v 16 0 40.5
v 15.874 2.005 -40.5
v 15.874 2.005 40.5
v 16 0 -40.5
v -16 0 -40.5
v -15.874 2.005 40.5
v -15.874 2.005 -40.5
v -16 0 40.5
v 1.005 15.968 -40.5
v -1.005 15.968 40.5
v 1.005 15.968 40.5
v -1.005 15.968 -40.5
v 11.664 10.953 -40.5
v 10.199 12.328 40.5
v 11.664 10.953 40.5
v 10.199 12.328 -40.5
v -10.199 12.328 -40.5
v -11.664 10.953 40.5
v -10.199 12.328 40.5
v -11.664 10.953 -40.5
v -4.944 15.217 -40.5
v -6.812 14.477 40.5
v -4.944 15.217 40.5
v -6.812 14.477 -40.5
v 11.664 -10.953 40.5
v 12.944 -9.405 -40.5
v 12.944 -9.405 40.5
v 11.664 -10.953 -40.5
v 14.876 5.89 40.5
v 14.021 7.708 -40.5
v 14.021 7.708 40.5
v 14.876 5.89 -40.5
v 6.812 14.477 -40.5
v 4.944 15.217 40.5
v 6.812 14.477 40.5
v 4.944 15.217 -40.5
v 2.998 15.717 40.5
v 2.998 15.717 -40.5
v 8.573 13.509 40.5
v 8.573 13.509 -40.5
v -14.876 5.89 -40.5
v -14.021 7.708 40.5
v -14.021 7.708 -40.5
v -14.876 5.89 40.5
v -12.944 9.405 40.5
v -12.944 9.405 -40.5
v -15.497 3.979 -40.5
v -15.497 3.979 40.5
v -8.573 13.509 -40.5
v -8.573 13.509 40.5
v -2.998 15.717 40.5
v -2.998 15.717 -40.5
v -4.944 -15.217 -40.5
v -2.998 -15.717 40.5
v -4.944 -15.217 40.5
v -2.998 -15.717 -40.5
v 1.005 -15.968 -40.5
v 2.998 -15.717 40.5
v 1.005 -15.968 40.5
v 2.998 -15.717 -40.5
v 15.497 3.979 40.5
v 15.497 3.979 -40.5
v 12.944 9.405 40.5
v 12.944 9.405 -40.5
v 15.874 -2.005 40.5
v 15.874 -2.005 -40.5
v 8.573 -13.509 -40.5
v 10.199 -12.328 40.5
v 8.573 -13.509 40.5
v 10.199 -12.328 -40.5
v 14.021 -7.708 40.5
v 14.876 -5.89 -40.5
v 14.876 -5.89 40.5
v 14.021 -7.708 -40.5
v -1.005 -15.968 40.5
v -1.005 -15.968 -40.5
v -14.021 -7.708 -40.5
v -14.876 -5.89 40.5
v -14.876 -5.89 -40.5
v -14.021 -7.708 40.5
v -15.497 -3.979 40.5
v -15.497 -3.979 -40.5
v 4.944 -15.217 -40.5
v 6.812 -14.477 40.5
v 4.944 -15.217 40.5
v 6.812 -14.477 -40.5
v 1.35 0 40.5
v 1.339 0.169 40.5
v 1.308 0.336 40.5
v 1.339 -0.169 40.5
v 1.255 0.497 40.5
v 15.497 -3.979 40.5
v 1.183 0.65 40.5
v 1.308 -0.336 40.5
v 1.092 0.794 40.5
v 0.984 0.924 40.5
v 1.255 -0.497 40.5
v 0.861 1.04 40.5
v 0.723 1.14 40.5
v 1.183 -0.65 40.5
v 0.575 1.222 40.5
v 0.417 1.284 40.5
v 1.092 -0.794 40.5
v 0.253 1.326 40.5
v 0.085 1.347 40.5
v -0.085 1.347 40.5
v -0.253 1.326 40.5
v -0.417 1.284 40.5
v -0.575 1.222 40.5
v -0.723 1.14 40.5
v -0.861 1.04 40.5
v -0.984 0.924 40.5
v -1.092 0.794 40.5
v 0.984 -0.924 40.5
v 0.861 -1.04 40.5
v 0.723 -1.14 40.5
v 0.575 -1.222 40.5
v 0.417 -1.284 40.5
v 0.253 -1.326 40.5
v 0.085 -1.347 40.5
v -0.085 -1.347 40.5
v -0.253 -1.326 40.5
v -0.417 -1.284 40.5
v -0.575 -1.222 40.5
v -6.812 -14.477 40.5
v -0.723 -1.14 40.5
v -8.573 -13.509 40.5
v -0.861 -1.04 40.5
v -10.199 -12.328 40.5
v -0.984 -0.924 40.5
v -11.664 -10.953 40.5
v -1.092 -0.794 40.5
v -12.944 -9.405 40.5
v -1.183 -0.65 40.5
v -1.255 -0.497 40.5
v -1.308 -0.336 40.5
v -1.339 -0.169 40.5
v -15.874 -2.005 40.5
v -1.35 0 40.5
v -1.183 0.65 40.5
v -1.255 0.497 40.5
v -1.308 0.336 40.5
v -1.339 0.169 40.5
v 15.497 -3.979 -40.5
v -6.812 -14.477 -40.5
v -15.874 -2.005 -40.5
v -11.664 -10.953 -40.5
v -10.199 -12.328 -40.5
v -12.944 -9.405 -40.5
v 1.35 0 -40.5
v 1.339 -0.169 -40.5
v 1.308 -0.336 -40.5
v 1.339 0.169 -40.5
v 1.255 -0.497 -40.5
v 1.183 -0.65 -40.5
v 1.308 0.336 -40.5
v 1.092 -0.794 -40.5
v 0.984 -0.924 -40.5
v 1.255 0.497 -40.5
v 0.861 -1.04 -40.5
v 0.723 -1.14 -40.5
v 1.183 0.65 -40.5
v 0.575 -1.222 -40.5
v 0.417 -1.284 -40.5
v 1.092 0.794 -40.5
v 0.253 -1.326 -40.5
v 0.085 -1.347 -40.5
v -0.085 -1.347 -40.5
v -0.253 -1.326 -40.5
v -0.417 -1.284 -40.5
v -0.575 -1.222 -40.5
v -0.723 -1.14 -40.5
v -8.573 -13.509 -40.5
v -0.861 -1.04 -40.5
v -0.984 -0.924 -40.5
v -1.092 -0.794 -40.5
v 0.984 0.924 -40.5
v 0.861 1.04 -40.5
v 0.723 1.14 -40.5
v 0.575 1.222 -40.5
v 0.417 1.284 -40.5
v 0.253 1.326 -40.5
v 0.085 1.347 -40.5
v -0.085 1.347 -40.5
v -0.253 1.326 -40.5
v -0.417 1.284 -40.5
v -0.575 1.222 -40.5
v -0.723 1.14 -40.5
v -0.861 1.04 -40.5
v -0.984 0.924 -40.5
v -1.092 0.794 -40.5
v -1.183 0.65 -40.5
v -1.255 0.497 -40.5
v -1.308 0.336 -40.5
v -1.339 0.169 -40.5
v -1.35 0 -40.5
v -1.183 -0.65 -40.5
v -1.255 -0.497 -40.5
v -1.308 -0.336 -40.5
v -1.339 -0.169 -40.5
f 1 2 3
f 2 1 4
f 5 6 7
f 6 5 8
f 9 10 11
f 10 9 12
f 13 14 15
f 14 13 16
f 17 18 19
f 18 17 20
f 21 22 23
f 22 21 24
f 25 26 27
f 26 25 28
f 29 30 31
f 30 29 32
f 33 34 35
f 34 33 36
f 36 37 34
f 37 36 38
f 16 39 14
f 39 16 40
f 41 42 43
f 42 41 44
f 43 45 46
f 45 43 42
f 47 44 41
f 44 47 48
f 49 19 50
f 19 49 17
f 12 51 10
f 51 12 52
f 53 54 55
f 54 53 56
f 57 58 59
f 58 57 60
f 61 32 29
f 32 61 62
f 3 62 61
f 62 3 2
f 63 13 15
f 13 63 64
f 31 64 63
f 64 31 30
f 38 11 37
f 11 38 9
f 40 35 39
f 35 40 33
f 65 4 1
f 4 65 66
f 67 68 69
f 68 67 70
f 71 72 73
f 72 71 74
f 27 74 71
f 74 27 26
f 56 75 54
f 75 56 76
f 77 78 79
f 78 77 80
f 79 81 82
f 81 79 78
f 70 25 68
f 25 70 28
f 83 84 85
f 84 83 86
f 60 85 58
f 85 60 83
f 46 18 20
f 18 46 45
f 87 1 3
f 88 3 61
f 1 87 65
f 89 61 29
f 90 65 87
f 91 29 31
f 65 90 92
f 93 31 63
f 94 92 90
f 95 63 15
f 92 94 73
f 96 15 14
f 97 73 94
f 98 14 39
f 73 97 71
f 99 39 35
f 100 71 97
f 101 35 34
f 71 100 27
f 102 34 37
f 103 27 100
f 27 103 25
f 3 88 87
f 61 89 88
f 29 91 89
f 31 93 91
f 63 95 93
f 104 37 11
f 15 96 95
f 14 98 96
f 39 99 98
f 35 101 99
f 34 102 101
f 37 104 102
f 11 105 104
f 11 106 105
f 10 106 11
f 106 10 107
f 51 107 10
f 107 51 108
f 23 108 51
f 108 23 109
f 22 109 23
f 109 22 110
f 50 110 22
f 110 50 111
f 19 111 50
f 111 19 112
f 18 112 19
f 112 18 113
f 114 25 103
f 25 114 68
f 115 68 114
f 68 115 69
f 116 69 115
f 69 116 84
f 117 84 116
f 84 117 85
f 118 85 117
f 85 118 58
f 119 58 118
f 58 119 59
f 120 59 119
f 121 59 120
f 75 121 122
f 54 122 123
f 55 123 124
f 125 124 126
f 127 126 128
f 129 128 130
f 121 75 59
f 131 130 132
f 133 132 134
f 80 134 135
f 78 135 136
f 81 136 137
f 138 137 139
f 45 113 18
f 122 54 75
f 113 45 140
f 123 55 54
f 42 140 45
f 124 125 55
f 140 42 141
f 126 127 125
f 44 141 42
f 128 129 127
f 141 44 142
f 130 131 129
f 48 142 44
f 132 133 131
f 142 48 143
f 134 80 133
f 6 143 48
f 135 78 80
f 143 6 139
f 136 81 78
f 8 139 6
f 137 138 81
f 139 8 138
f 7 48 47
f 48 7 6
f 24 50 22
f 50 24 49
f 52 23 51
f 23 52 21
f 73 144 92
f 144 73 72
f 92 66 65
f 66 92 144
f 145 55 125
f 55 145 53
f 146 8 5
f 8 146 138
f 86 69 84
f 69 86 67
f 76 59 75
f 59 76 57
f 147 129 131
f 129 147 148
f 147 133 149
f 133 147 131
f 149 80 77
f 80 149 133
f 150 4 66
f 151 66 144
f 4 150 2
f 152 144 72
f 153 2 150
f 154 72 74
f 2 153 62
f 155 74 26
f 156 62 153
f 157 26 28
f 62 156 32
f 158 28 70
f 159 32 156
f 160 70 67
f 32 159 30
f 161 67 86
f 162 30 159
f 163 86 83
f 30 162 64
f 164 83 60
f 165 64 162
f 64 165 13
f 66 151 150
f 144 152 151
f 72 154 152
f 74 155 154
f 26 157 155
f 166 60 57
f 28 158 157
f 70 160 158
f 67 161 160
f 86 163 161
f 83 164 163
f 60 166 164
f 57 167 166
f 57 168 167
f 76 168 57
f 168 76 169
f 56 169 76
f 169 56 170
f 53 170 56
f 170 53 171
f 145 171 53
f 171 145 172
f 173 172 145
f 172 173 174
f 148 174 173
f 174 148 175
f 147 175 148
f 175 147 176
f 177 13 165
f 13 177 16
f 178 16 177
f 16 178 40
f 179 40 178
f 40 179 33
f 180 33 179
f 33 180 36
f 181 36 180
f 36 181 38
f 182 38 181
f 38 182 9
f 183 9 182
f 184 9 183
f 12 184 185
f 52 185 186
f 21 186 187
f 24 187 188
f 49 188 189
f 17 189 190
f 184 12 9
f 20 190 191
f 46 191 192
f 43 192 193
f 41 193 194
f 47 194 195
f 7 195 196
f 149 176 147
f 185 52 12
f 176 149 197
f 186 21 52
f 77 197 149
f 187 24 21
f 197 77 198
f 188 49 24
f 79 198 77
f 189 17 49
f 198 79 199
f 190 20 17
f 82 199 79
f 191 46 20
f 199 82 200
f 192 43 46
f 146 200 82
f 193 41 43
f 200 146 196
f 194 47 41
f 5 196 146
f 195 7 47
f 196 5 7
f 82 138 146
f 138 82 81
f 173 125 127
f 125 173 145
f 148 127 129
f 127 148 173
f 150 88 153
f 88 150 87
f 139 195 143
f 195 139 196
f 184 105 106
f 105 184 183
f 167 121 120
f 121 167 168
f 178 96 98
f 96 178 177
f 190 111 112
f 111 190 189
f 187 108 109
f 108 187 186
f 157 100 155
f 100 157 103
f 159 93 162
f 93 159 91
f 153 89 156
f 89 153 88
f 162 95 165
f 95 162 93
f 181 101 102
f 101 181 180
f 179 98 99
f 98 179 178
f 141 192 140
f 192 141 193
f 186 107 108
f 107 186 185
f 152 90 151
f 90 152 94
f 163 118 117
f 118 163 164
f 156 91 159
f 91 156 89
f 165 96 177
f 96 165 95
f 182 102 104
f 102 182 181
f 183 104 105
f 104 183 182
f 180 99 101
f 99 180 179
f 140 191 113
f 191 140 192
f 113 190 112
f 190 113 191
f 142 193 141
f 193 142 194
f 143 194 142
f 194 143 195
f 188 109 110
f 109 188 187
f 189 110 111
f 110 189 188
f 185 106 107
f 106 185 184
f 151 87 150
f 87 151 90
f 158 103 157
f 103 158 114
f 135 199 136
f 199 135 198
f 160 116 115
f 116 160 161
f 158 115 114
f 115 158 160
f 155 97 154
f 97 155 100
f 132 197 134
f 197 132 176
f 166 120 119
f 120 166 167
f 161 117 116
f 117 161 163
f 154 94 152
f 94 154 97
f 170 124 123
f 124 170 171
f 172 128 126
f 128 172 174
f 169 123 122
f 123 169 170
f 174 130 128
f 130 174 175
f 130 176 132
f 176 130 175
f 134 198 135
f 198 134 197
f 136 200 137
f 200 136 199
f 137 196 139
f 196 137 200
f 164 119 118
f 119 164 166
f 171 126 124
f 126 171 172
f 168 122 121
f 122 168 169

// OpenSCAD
$fn = 50;


difference() {
	union() {
		translate(v = [0, 0, -40.5000000000]) {
			cylinder(h = 81, r = 16.0000000000);
		}
	}
	union() {
		translate(v = [0, 0, -100.0000000000]) {
			cylinder(h = 200, r = 1.3500000000);
		}
	}
}
